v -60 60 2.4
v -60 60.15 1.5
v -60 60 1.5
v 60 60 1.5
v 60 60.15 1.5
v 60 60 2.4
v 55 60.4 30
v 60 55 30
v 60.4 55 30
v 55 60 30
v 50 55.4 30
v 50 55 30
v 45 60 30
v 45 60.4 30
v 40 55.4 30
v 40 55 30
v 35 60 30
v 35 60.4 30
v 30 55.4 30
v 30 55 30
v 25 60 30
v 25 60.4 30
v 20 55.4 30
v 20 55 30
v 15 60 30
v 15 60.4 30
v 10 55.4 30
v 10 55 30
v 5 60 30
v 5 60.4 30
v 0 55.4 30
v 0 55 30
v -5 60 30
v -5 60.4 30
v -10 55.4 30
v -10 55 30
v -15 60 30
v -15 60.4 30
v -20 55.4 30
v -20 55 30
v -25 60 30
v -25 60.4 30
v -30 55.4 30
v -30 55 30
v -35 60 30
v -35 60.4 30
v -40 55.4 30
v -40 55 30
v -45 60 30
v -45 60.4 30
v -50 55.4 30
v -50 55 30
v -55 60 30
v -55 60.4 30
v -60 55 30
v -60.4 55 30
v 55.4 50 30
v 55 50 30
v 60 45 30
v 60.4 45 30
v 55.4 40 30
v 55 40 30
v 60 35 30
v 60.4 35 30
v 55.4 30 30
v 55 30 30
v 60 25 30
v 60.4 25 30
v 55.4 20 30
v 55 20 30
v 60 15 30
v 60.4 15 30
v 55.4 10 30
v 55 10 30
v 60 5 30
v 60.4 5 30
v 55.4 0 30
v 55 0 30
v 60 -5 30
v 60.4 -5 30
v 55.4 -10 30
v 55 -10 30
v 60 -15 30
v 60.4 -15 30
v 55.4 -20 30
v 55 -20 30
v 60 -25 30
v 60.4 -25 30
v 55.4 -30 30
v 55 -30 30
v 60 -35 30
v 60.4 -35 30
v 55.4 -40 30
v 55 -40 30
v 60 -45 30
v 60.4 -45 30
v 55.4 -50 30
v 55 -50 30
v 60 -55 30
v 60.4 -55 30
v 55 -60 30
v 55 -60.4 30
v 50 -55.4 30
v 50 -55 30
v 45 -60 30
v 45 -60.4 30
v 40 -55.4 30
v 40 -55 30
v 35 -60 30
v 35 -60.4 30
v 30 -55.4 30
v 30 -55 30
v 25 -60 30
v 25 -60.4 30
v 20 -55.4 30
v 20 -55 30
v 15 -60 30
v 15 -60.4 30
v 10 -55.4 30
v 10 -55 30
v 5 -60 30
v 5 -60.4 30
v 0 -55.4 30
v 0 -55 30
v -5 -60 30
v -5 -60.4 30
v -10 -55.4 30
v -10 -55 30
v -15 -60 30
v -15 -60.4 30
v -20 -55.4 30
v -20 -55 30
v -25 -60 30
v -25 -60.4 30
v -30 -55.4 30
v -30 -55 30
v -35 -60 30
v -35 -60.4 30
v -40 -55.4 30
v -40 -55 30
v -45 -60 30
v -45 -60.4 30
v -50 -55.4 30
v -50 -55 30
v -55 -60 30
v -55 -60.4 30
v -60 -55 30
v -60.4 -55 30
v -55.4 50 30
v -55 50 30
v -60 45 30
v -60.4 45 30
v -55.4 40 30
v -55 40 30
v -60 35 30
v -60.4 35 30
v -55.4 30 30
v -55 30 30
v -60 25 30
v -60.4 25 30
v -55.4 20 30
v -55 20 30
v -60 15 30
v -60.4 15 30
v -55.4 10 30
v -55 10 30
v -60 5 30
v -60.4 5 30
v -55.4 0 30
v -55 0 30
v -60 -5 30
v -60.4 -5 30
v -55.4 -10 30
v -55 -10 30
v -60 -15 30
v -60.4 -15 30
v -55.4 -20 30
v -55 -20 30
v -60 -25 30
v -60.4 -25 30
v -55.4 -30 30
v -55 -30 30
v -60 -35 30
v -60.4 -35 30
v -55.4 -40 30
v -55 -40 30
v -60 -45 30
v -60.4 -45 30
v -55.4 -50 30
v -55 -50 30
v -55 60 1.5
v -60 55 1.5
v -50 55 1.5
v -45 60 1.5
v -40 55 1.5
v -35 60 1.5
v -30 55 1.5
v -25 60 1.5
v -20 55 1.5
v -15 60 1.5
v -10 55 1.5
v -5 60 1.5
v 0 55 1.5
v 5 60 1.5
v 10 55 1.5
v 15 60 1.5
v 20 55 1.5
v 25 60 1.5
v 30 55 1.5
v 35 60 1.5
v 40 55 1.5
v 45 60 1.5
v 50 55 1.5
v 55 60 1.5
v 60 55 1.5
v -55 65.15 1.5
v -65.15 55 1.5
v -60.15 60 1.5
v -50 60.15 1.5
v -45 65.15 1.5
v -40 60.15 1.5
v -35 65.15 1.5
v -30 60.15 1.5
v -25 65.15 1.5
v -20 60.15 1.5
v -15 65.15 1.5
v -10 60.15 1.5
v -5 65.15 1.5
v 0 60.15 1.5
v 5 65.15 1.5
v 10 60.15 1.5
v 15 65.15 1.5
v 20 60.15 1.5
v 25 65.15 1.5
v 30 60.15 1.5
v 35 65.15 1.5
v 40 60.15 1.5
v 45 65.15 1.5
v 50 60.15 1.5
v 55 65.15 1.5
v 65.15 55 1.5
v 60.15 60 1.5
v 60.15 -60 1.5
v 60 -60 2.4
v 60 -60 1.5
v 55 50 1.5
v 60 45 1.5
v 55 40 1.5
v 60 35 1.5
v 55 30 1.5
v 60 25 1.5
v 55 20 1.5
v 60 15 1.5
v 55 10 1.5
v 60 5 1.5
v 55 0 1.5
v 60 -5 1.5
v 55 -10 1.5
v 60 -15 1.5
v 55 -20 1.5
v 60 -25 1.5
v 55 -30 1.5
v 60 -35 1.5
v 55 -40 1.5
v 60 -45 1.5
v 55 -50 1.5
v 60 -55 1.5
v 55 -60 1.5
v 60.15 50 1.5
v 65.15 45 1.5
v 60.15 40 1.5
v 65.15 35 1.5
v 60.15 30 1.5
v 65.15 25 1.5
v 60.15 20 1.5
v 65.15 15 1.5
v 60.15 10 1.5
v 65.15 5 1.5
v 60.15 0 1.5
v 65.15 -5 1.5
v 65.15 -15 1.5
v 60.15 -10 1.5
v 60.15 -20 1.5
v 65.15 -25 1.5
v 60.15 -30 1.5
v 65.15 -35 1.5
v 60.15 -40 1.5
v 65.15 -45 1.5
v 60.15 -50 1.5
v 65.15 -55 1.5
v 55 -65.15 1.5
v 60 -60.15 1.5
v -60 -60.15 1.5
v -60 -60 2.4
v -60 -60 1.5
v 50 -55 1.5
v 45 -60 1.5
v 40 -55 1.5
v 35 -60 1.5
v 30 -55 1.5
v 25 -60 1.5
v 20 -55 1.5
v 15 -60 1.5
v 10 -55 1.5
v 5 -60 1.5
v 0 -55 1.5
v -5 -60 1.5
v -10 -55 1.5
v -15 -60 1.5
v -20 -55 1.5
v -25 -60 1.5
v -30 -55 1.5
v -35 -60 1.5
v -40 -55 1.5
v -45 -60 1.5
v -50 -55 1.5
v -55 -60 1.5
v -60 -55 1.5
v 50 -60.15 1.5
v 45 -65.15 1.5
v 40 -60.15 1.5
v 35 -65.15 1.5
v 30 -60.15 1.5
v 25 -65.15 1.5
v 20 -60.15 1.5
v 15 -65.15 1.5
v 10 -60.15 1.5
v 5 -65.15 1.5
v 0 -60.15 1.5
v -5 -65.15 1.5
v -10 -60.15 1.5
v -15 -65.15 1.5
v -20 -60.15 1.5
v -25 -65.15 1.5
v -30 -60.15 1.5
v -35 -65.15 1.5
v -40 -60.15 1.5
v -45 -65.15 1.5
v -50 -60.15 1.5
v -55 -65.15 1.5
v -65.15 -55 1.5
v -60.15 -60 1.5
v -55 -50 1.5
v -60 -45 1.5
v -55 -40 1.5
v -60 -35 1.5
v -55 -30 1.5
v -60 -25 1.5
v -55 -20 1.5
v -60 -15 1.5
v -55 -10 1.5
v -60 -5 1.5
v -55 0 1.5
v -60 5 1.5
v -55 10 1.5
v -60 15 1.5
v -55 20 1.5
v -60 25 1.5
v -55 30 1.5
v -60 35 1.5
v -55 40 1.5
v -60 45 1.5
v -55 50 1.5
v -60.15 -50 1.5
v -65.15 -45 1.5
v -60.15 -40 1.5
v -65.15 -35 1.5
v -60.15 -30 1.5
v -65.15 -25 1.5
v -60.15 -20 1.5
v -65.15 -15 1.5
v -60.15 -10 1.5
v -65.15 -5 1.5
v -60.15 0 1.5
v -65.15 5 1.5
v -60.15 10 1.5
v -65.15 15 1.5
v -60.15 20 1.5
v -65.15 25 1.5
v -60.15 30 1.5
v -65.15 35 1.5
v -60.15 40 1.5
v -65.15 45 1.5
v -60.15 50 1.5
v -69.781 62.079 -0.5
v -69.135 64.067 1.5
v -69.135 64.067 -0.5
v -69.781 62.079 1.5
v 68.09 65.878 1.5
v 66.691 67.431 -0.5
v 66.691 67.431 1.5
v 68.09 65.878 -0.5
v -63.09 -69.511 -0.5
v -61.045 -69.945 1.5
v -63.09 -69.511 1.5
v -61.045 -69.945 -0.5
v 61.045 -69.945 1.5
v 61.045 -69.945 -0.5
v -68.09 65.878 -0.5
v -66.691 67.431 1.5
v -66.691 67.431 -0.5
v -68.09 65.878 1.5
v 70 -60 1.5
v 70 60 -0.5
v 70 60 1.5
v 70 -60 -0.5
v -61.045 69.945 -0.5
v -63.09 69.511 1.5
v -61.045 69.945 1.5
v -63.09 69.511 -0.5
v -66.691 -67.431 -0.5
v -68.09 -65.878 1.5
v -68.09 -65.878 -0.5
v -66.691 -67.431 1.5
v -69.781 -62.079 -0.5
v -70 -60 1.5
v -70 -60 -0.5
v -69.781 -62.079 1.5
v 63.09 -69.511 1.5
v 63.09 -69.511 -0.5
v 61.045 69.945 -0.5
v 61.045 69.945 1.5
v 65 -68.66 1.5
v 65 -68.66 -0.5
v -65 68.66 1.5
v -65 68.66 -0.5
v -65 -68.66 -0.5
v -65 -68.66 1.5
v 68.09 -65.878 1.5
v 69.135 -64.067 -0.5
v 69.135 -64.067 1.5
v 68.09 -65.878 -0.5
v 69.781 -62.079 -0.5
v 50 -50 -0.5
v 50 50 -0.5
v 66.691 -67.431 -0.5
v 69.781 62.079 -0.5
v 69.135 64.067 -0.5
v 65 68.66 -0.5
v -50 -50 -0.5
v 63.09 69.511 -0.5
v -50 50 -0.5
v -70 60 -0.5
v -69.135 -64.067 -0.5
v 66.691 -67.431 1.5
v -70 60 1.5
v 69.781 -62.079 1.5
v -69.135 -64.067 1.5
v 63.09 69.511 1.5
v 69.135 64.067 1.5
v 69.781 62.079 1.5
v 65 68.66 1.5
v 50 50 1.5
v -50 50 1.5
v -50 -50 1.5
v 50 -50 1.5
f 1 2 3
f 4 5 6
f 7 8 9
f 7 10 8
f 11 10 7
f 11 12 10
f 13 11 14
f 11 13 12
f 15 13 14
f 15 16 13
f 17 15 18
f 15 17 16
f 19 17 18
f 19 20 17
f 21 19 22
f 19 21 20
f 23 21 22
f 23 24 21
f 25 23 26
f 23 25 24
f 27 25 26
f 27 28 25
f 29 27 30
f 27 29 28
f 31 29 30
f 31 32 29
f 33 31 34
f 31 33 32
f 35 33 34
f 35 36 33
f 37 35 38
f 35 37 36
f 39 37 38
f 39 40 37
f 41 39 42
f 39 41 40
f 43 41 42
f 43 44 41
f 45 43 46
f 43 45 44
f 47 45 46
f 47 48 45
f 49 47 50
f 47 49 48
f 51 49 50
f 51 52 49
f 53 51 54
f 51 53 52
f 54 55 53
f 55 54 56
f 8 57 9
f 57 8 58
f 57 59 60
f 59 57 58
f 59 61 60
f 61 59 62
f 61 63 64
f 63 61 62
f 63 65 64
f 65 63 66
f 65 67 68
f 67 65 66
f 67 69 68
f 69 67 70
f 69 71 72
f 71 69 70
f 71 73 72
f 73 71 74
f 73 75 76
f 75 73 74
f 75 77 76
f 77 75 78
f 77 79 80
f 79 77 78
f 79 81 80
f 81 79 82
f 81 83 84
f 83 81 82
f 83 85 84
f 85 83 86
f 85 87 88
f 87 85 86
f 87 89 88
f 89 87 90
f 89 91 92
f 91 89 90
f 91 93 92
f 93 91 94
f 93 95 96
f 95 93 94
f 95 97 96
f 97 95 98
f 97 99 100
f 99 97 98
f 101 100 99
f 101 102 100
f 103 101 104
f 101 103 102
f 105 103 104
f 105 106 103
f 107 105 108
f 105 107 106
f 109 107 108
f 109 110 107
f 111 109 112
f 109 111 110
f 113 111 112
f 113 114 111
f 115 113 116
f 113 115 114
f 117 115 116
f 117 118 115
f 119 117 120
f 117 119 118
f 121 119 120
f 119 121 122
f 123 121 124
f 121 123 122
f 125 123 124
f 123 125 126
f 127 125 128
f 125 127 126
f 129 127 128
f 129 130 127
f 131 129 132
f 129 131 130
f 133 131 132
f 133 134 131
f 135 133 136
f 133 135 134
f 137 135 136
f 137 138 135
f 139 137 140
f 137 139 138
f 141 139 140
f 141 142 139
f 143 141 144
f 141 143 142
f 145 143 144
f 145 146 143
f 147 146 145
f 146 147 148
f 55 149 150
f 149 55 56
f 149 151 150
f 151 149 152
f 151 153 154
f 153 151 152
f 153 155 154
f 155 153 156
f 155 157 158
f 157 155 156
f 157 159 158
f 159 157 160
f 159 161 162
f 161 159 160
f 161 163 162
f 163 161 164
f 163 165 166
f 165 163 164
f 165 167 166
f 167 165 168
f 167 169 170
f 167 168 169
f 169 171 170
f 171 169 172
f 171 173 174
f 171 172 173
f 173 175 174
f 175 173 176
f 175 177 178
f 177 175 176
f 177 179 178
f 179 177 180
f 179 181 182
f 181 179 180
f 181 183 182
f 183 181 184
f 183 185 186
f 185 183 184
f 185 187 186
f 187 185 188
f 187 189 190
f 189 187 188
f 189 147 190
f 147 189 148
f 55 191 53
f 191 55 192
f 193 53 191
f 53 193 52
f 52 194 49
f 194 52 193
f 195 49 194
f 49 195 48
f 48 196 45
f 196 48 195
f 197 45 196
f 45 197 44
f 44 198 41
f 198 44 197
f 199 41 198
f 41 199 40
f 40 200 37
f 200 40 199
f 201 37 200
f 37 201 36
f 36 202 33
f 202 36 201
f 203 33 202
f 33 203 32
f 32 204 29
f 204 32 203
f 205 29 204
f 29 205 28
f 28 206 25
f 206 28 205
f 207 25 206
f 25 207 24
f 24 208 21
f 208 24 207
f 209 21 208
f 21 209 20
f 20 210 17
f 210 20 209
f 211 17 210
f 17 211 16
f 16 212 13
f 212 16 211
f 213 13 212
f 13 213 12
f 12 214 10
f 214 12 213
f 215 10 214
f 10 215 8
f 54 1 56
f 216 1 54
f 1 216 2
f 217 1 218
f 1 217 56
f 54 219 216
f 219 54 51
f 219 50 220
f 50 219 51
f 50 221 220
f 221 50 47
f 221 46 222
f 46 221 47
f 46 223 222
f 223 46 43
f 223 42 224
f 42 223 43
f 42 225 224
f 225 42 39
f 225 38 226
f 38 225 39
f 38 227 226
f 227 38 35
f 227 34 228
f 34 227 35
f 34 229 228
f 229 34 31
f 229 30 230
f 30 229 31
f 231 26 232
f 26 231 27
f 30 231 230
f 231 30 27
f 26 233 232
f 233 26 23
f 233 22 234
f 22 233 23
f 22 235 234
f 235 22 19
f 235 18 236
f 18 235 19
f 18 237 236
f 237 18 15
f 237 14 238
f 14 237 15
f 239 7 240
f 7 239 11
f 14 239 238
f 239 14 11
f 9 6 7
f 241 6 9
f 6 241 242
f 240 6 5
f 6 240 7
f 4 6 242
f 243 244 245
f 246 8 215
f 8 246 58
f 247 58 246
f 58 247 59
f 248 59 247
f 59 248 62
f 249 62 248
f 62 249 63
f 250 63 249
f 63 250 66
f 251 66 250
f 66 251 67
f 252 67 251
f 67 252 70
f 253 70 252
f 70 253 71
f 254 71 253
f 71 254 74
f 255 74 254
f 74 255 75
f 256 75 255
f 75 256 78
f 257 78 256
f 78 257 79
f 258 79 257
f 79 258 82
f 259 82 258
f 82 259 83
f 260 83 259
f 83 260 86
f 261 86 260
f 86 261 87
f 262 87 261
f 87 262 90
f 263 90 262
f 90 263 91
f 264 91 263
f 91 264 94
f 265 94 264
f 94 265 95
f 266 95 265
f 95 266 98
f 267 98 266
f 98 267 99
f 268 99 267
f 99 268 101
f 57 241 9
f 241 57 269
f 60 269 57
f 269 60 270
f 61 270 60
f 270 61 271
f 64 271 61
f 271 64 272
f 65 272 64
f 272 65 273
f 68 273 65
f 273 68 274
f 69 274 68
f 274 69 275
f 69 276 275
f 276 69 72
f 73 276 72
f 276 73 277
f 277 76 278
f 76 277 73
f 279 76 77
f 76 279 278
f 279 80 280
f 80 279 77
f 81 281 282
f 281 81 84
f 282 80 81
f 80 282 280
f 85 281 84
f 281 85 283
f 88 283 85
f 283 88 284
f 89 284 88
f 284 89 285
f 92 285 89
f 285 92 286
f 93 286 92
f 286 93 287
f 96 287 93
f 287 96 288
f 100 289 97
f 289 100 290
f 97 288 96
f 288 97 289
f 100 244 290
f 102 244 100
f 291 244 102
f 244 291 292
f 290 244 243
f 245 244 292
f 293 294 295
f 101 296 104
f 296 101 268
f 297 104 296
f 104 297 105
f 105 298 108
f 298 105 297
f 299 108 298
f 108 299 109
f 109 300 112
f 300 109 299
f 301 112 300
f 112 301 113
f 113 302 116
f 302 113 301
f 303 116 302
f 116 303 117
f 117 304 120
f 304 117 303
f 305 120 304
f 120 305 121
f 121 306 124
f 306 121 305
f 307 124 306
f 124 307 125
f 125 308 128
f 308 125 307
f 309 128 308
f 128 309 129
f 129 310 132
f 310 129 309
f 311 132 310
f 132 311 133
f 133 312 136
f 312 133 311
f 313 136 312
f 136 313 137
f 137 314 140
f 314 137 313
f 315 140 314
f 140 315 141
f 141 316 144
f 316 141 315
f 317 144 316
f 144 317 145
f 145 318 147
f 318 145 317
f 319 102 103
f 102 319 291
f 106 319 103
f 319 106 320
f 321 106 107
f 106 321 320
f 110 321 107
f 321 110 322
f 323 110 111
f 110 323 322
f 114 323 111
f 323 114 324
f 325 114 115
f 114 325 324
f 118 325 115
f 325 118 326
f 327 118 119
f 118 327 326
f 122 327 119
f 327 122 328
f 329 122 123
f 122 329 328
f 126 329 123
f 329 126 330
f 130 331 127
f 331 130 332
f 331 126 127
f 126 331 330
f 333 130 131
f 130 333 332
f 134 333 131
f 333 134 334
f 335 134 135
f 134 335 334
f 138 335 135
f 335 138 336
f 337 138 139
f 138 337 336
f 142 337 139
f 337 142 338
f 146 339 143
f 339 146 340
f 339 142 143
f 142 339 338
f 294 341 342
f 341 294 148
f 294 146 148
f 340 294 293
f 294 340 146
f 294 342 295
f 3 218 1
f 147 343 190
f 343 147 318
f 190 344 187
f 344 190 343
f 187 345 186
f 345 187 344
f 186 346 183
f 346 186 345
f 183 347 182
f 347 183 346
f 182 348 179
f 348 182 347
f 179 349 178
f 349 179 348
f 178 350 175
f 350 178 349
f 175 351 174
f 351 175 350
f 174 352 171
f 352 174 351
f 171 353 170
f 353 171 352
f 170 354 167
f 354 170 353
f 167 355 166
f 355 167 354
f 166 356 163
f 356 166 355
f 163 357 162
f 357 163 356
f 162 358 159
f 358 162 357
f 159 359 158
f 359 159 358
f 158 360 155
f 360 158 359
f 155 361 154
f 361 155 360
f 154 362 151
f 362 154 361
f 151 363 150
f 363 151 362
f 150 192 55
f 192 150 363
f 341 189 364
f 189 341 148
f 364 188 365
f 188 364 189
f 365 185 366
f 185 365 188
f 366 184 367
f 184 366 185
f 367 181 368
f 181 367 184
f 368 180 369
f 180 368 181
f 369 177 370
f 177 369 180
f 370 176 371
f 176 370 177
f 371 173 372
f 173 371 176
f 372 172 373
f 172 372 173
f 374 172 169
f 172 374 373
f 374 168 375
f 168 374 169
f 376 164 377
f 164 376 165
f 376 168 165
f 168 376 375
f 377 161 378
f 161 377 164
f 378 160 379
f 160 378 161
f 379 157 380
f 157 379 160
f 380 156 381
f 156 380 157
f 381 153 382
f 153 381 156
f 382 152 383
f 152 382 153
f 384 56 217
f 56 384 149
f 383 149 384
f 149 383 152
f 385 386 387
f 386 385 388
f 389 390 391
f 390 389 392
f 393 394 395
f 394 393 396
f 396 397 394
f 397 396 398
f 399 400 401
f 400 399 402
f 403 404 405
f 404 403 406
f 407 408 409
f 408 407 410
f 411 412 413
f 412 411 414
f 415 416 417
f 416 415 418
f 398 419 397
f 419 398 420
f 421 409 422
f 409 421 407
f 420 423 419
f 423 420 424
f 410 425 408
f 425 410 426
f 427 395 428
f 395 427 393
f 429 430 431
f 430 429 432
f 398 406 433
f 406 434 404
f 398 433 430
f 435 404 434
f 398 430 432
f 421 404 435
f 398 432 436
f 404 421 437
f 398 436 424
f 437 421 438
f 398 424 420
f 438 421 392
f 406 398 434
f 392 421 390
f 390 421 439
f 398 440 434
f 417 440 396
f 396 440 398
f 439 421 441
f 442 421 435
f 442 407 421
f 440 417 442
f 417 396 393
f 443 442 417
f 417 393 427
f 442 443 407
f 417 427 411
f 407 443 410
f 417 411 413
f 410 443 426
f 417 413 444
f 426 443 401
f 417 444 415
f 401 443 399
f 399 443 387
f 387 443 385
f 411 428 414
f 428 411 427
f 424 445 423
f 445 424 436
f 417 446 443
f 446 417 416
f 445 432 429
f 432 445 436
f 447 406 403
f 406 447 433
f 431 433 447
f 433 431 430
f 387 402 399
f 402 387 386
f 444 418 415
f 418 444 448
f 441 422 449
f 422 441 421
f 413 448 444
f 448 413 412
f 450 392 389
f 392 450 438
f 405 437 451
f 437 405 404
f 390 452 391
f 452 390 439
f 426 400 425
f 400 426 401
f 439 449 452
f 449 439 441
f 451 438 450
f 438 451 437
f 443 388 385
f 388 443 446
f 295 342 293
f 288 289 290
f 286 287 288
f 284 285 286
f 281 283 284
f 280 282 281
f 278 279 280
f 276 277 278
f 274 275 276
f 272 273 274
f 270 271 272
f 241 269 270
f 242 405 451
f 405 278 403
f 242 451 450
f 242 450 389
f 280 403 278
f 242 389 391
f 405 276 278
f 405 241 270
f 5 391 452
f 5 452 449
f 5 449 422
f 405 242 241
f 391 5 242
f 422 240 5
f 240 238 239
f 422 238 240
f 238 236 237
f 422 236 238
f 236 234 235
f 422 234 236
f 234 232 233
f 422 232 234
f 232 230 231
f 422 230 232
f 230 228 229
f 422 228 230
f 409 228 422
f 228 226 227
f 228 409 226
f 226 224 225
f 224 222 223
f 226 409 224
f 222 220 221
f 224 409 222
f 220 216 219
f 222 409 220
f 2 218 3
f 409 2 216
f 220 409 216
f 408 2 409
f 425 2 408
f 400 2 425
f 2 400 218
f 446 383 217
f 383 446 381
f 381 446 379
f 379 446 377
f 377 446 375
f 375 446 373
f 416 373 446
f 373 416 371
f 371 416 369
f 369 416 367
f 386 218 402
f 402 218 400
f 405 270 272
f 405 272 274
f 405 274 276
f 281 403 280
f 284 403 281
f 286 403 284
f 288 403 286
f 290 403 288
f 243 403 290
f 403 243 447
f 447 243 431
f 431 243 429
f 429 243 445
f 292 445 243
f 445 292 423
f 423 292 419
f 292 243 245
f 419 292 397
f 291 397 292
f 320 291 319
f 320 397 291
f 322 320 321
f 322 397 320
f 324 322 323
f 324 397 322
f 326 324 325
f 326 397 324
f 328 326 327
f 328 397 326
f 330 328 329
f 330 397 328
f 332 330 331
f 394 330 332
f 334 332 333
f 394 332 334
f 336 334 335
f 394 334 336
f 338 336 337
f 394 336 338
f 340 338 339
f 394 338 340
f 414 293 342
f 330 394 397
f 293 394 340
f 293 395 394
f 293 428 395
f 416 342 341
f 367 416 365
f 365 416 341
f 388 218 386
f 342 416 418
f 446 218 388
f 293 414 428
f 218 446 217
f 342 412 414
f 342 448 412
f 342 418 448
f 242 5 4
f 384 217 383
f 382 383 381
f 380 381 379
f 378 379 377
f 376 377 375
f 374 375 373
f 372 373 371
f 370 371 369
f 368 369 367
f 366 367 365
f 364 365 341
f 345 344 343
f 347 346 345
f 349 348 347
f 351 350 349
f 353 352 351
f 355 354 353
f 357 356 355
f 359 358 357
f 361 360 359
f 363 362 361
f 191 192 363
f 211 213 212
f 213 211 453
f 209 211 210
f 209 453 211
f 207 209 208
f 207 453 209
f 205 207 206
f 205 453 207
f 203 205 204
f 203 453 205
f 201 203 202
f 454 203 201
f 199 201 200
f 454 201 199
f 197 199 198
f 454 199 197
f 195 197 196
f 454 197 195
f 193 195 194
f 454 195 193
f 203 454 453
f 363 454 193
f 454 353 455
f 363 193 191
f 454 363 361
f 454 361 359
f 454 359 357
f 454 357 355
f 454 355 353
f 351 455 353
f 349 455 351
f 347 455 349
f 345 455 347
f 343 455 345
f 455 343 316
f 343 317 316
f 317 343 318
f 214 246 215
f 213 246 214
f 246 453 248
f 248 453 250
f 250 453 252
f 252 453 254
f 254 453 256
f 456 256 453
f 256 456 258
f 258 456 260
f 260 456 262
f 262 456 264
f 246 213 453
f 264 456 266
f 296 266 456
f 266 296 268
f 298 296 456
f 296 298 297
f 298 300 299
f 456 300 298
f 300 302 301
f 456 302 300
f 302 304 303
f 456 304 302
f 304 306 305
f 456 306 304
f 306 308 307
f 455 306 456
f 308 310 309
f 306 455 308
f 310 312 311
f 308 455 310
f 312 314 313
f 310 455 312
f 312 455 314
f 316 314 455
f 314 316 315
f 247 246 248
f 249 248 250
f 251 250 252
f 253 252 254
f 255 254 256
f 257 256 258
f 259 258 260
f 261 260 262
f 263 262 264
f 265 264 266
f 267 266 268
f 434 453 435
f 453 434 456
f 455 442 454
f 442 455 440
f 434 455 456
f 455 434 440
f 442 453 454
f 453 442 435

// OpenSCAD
N = 12;
side = 10;
height = 30;
thickness = 0.4;

A = [
      [1, 0, 0, 0],
      [0, 1, -(side/2)/height, 0],
      [0, 0, 1, 0],
      [0, 0, 0, 1]
    ];

module prisma() {
  translate([0, 0, height/2])
    rotate([0, 0, 45])
      cube([side/2*sqrt(2), side/2*sqrt(2), height], center = true);
}

module prisma_line(N) {
  for (i = [1:N]) {
    translate([(i-.5) * side, side/2, 0])
      prisma();
  }
}

module base() {
  translate([0, 0, 0])
  difference() {
    translate([0, -thickness, 0])
      multmatrix(m = A) cube([N*side, side + thickness, height-1]);
    translate([0, side/2, 0])
      cube([N*side, side/2, height-1]);
  }
}

module cutter_side() {
  translate([-N*side/2, -N*side/2, 0])
  difference() {
    base();
    translate([-side/2, -side/2 - thickness, 0])
      multmatrix(m = A)
        prisma_line(N+1);
    prisma_line(N+1);
  }
}

module cutter() {
  union() {
    for (angle = [0, 90, 180, 270]) {
      rotate([0, 0, angle])
        cutter_side();
    }
    difference() {
      translate([0, 0, height-1]) {
        minkowski() {
          cube([(N)*side, (N)*side, 1], center = true);
          cylinder(h = 1, r = side);
        }
      }
      cube([(N-2)*side, (N-2)*side, height*10], center = true);
    }
  }
}

translate([0, 0, height])
  rotate([180, 0, 0])
    cutter();
